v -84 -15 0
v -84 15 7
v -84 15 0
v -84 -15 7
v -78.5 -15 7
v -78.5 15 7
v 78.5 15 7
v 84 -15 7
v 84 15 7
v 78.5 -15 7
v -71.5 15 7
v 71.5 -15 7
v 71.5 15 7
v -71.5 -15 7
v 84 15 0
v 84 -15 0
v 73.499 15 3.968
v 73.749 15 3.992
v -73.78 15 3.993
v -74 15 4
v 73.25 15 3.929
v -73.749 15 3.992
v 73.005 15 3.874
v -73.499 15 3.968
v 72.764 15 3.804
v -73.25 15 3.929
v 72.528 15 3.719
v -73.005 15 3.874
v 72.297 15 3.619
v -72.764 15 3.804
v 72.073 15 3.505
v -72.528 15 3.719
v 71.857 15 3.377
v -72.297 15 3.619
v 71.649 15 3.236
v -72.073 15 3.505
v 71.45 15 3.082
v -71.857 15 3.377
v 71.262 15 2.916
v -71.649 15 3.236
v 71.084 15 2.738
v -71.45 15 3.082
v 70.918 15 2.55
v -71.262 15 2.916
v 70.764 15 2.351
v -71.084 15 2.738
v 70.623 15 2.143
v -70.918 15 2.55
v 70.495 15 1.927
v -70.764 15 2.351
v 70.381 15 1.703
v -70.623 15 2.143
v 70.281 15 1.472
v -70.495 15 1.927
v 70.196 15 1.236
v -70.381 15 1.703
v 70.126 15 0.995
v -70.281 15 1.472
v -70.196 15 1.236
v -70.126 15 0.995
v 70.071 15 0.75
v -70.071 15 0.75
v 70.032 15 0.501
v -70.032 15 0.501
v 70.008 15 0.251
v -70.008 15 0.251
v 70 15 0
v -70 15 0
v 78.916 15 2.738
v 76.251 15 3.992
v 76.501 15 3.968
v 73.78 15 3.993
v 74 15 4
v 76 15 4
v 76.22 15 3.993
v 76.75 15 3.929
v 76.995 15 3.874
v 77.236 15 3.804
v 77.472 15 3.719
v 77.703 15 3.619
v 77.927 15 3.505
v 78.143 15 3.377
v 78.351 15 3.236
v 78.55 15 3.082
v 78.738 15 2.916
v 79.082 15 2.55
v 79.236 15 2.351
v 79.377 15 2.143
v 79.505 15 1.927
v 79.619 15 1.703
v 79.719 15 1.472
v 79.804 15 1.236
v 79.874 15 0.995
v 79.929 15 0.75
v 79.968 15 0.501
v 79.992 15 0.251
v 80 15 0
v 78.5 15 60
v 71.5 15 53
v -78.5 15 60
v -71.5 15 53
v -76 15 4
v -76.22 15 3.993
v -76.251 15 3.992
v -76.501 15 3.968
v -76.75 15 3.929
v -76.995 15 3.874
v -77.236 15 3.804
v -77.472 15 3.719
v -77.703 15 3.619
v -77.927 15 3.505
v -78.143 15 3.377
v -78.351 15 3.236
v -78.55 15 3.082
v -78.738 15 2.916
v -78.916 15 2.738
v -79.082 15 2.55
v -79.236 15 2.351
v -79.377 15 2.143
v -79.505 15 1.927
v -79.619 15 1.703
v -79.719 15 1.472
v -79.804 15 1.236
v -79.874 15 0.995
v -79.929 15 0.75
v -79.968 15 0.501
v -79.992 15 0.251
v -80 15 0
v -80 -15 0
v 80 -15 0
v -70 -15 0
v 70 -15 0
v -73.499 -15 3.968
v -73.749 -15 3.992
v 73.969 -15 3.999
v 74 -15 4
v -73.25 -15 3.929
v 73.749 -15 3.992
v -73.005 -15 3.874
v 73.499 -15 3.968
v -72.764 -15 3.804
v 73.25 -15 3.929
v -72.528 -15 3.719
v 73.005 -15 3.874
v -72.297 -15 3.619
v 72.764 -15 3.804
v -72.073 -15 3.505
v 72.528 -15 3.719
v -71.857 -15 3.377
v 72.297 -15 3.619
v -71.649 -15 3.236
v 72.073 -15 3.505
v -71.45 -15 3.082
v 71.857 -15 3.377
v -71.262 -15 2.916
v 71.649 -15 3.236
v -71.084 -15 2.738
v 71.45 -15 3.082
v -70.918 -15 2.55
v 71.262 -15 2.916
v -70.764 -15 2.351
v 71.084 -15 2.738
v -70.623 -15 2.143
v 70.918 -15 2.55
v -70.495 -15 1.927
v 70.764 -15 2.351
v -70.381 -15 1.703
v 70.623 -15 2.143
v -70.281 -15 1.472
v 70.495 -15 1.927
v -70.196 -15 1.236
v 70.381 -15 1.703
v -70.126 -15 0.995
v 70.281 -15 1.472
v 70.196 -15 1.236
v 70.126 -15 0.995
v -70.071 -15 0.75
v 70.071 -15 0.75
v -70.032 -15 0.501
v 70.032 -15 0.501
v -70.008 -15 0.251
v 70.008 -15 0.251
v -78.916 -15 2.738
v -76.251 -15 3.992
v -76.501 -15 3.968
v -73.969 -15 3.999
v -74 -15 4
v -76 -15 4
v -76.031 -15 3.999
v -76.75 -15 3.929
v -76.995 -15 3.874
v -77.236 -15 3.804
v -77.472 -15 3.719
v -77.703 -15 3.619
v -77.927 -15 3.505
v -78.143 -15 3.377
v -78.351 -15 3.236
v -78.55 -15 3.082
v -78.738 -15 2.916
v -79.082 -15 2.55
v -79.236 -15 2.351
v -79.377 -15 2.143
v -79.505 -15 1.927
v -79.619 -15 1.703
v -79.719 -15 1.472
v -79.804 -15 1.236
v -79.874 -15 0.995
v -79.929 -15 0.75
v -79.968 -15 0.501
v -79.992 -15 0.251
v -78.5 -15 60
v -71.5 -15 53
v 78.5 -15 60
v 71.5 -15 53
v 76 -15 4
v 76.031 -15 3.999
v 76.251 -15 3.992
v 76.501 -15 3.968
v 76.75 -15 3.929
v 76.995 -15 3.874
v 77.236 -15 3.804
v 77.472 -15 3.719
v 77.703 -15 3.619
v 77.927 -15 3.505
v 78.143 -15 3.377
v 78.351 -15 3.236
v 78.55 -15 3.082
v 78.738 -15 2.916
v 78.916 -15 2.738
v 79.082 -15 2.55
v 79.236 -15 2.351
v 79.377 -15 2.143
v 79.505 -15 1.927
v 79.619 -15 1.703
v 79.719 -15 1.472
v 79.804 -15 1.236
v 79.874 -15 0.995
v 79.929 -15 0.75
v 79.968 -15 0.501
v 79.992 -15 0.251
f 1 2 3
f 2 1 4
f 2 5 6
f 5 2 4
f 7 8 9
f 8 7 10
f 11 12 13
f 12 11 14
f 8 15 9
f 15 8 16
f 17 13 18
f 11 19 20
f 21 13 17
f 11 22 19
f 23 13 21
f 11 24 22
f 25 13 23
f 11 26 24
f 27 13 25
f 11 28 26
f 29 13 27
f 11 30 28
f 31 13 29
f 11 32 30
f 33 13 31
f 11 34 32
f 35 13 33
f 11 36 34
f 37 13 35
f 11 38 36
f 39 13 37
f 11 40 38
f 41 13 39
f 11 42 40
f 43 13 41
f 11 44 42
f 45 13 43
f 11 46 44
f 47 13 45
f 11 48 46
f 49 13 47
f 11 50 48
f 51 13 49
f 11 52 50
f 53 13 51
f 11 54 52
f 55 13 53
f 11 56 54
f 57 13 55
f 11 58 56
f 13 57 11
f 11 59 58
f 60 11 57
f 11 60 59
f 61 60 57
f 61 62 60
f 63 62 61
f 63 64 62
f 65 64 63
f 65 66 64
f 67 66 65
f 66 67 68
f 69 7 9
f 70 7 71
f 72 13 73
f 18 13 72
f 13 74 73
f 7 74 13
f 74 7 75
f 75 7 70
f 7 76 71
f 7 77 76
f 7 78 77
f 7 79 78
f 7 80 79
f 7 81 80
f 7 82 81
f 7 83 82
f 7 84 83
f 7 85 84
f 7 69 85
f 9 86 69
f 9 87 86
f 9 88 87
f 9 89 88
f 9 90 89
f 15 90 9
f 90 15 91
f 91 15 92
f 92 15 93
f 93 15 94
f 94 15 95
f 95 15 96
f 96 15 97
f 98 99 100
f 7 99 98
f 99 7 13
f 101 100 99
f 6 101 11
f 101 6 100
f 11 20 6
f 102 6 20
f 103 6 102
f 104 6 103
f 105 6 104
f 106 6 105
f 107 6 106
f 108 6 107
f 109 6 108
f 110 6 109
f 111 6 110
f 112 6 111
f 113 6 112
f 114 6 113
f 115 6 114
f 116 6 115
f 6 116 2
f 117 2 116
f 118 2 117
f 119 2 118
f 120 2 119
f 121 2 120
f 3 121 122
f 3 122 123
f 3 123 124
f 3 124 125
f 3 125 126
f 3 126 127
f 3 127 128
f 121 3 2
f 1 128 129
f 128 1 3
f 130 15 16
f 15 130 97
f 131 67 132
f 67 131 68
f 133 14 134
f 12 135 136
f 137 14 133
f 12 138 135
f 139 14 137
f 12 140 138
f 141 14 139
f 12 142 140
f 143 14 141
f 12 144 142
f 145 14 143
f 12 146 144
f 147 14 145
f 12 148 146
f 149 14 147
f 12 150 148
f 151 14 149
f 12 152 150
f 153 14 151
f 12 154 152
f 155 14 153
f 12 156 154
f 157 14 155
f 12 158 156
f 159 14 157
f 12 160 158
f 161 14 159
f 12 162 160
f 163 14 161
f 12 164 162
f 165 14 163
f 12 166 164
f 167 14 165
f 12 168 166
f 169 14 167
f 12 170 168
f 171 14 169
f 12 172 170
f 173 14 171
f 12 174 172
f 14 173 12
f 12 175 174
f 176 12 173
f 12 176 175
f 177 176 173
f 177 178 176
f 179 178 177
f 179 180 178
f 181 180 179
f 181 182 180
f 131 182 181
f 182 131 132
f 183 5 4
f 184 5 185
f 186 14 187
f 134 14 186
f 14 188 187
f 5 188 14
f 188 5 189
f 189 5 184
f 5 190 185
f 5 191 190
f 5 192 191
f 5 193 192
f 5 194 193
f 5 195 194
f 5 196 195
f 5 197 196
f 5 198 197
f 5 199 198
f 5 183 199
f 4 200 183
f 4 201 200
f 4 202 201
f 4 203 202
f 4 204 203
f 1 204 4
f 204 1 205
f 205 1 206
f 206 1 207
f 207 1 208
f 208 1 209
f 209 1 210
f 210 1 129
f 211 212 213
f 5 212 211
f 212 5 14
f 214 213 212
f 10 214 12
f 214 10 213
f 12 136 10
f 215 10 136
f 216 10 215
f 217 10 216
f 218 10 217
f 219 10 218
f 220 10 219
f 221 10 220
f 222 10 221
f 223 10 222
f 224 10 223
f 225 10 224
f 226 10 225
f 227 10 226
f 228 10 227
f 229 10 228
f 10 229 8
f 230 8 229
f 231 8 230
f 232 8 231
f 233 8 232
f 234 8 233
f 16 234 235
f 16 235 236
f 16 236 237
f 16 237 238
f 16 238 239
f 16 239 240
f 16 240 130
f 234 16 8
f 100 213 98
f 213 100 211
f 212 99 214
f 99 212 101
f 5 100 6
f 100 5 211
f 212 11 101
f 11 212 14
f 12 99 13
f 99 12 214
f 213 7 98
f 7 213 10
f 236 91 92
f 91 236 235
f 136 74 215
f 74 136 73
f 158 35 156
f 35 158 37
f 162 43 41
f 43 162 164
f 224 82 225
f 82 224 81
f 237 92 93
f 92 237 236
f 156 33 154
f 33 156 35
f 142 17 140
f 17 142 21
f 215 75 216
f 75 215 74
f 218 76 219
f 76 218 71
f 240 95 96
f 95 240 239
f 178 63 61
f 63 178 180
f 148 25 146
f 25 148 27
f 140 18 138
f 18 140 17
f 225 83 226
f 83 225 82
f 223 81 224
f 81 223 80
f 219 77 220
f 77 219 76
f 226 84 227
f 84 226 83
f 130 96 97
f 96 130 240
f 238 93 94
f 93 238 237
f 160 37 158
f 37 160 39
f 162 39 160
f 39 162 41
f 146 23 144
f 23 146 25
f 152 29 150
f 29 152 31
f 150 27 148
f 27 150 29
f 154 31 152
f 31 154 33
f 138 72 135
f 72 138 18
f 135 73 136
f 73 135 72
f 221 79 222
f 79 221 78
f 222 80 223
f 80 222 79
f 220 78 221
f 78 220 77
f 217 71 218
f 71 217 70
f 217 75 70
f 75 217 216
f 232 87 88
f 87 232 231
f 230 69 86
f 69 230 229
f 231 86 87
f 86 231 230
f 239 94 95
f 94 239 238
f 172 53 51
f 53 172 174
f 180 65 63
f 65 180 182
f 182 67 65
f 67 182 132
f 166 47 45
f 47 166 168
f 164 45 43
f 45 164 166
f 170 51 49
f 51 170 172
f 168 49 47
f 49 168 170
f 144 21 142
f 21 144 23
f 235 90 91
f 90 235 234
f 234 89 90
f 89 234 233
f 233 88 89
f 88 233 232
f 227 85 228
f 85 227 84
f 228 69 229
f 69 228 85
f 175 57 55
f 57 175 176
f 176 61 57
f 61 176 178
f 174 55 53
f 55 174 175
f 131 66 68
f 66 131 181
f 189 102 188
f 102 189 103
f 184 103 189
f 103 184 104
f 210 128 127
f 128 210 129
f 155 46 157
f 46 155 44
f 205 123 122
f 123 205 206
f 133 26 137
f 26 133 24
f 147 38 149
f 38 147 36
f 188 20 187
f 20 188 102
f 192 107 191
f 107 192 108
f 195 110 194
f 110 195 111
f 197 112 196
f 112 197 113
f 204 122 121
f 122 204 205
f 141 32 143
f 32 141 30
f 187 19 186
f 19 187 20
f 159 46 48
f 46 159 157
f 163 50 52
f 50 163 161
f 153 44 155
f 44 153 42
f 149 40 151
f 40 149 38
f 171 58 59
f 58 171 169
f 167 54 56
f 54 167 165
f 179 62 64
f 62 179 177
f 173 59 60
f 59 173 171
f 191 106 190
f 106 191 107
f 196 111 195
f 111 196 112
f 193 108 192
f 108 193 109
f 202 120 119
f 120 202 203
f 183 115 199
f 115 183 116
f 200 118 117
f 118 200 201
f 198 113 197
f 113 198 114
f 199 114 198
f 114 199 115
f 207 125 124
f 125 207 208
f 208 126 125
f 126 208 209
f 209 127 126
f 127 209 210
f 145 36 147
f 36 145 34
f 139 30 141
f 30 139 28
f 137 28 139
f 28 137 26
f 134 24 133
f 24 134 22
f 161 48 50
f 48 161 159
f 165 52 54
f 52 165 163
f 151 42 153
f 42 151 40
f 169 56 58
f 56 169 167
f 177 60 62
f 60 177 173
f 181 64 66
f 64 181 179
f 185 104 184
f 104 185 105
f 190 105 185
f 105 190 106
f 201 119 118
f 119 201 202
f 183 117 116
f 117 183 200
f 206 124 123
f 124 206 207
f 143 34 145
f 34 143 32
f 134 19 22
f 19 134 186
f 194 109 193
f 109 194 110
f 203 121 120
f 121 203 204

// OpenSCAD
space = 150;
rail_D = 8;
size_x = space + rail_D * 2 + 2;
depth = 7;
thickness = 30;
spacer_height = 60;

$fn = 100;

make_rail_spacer();
module make_rail_spacer() {
  difference() {
    make_plates();
    make_rails();
  }
}

module make_rails() {
  hull() {
    translate([space/2 - 1, 0, 0]) {
      rotate([90, 0, 0]) {
        cylinder(d = rail_D, h=thickness + 10, center=true);
      }
    }
    translate([space/2 + 1, 0, 0]) {
      rotate([90, 0, 0]) {
        cylinder(d = rail_D, h=thickness + 10, center=true);
      }
    }
  }
  hull() {
    translate([-space/2 + 1, 0, 0]) {
      rotate([90, 0, 0]) {
        cylinder(d = rail_D, h=thickness + 10, center=true);
      }
    }
    translate([-space/2 - 1, 0, 0]) {
      rotate([90, 0, 0]) {
        cylinder(d = rail_D, h=thickness + 10, center=true);
      }
    }
  }

  translate([0, 0, spacer_height]) {
    rotate([0, 90, 0]) {
//      cylinder(d = rail_D, h=size_x + 10, center=true);
    }
  }
}

module make_plates() {
  //bottom_plate
  translate([0, 0, depth/2]) {
    cube(size=[size_x, thickness, depth], center=true);
  }
  //top_plate
  translate([0, 0, spacer_height - depth/2]) {
    cube(size=[space, thickness, depth], center=true);
  }

  //side_plates
  translate([-space/2, 0, spacer_height/2]) {
    cube(size=[depth, thickness, spacer_height], center=true);
  }

  translate([space/2, 0, spacer_height/2]) {
    cube(size=[depth, thickness, spacer_height], center=true);
  }
}
